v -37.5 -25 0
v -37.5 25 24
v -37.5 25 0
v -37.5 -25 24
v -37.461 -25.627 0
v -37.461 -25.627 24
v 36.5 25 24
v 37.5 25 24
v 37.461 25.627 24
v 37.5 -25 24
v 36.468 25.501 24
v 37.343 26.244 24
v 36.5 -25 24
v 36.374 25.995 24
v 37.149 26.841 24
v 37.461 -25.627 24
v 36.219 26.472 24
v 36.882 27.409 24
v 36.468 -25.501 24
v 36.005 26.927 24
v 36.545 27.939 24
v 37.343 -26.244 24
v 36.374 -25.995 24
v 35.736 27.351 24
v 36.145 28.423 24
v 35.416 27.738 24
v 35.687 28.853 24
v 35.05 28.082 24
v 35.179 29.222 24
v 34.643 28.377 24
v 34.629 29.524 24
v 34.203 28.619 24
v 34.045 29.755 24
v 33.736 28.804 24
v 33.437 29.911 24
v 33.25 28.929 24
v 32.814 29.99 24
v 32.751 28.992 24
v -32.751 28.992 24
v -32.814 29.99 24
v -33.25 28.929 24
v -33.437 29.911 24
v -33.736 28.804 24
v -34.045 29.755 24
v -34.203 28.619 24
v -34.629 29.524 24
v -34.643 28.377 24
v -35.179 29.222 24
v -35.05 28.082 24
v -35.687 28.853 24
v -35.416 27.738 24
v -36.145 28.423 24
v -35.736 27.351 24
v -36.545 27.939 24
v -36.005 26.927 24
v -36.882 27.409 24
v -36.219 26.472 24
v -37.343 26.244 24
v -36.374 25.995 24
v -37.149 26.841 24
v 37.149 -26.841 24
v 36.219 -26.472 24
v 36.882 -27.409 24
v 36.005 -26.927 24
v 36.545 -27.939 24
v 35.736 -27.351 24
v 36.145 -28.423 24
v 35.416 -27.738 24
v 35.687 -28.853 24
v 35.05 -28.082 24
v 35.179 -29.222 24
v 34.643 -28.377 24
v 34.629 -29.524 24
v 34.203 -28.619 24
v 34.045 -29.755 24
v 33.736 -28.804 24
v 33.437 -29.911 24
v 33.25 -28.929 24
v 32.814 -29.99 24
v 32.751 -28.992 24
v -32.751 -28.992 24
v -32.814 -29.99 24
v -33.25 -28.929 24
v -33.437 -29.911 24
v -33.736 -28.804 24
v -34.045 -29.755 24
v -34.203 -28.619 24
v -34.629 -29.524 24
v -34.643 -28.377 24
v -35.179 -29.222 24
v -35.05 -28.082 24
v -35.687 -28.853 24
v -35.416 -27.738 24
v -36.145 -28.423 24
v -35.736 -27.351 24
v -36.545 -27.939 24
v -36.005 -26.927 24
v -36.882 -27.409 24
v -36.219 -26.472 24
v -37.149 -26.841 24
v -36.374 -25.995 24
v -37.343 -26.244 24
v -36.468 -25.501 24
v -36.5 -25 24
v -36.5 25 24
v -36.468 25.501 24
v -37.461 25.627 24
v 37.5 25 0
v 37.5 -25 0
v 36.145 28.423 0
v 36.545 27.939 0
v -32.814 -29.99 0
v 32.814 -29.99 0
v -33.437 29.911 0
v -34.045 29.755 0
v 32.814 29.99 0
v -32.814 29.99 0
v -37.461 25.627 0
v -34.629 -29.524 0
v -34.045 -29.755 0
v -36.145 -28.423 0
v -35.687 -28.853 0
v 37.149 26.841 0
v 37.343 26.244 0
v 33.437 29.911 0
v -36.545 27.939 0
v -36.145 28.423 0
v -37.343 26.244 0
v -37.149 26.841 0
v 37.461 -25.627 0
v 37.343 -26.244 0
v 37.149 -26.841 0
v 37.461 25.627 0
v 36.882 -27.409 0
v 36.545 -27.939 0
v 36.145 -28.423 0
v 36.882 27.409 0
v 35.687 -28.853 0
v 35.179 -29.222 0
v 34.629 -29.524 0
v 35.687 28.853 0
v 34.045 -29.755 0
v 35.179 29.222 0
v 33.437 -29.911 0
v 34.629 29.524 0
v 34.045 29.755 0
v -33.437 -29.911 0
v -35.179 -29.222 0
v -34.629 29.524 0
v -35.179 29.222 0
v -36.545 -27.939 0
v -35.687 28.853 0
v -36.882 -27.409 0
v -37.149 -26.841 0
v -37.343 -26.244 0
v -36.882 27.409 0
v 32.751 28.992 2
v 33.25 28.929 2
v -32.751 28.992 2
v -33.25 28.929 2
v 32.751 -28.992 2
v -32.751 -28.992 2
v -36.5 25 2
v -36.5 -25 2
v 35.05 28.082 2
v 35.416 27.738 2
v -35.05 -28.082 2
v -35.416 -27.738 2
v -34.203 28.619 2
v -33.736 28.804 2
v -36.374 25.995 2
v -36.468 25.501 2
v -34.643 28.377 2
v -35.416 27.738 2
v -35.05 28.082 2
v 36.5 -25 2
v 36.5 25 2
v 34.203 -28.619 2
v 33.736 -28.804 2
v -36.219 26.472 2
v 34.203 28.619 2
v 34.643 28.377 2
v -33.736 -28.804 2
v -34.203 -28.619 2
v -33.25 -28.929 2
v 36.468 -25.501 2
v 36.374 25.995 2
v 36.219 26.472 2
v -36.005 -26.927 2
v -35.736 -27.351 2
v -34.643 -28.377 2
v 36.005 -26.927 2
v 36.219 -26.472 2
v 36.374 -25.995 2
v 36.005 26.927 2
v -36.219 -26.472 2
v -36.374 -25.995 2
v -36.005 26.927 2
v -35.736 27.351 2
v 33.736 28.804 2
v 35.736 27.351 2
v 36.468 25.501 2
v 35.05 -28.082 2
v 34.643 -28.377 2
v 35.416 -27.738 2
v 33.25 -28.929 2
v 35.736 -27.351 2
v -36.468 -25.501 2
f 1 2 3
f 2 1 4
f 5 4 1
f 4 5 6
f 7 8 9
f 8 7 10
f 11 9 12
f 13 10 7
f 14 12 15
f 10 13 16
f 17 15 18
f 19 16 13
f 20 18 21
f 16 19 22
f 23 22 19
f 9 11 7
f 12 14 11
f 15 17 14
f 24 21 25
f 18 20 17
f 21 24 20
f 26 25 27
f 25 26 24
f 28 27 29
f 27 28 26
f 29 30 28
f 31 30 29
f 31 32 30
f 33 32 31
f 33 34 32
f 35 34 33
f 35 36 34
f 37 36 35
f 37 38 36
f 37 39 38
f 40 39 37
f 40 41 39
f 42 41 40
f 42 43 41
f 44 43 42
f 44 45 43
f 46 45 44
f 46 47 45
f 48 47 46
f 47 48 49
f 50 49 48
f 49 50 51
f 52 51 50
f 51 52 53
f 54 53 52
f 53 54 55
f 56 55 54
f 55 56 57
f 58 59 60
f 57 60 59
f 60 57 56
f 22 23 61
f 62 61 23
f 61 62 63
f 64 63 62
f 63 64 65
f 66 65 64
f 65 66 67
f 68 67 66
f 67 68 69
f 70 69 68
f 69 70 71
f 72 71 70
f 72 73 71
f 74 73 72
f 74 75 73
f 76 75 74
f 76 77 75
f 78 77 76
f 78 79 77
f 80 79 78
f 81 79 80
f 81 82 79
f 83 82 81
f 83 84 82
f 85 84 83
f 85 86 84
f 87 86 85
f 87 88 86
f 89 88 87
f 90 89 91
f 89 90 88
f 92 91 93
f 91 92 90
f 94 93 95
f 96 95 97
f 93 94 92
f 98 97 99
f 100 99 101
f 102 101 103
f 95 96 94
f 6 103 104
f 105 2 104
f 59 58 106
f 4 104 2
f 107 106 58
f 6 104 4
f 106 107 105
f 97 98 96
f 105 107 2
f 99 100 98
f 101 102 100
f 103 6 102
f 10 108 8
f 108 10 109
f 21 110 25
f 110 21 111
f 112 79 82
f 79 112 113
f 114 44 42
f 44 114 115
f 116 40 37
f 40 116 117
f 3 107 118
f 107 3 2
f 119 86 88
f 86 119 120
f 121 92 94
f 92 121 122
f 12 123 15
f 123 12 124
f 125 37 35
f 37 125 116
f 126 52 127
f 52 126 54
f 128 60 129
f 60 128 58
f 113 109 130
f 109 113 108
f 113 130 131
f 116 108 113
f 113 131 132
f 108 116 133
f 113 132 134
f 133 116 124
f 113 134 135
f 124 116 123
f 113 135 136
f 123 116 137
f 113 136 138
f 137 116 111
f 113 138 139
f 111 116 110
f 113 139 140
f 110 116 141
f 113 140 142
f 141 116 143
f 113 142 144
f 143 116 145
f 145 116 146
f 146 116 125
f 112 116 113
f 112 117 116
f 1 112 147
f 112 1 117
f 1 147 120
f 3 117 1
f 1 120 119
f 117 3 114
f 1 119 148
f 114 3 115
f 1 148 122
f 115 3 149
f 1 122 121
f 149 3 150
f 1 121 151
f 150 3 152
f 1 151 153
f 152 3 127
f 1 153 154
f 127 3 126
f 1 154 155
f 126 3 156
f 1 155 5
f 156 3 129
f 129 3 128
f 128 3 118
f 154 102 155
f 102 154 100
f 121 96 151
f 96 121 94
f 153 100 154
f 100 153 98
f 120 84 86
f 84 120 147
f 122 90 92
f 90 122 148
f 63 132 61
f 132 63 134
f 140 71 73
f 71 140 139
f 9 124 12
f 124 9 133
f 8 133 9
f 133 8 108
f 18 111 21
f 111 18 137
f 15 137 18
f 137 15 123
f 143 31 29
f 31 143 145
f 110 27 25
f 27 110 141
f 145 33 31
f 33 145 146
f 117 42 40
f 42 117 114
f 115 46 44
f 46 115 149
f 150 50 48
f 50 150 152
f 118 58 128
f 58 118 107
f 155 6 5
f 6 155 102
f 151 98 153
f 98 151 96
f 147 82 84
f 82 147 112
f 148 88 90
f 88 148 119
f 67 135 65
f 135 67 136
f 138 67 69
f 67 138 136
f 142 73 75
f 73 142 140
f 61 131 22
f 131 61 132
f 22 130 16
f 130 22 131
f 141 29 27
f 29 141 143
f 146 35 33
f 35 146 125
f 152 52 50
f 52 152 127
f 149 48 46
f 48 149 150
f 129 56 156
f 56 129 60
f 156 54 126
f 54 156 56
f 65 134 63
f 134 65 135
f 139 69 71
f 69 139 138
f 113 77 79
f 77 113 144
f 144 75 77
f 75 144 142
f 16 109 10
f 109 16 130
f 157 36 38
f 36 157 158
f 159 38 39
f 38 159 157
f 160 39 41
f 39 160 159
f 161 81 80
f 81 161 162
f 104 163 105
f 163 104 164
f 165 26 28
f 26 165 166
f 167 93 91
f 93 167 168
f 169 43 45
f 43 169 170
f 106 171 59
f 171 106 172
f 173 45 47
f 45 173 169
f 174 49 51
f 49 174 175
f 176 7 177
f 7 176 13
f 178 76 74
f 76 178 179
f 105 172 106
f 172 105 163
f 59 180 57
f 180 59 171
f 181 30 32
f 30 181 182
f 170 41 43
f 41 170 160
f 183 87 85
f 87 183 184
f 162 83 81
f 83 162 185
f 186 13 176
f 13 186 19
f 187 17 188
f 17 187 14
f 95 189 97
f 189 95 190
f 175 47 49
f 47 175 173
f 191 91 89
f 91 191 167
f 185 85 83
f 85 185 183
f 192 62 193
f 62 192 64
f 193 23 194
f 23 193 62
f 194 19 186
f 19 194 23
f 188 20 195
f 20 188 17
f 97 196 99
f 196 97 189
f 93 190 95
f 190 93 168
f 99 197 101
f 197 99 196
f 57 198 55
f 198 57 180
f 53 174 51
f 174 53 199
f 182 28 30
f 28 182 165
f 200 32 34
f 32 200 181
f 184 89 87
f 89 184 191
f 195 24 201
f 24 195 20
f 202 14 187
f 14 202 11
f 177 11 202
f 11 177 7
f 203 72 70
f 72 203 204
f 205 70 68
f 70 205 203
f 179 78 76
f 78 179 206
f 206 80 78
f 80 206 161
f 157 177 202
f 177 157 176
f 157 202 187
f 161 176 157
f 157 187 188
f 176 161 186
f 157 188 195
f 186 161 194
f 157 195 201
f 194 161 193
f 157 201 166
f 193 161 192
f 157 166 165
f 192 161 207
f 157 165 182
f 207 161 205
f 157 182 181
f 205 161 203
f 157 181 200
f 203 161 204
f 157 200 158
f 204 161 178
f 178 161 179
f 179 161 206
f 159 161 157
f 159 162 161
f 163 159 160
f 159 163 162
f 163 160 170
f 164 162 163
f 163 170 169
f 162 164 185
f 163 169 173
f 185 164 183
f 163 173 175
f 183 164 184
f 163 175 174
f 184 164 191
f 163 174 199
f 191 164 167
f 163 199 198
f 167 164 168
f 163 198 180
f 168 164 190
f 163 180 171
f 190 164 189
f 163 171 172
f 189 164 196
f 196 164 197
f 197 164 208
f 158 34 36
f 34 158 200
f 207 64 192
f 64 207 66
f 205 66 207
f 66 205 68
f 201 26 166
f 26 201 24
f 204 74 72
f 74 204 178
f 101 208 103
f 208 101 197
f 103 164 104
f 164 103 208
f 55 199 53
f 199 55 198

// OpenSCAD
$fn = 50;


difference() {
	union() {
		hull() {
			translate(v = [-32.5000000000, 25.0000000000, 0]) {
				cylinder(h = 24, r = 5);
			}
			translate(v = [32.5000000000, 25.0000000000, 0]) {
				cylinder(h = 24, r = 5);
			}
			translate(v = [-32.5000000000, -25.0000000000, 0]) {
				cylinder(h = 24, r = 5);
			}
			translate(v = [32.5000000000, -25.0000000000, 0]) {
				cylinder(h = 24, r = 5);
			}
		}
	}
	union() {
		translate(v = [0, 0, 2]) {
			hull() {
				translate(v = [-32.5000000000, 25.0000000000, 0]) {
					cylinder(h = 22, r = 4);
				}
				translate(v = [32.5000000000, 25.0000000000, 0]) {
					cylinder(h = 22, r = 4);
				}
				translate(v = [-32.5000000000, -25.0000000000, 0]) {
					cylinder(h = 22, r = 4);
				}
				translate(v = [32.5000000000, -25.0000000000, 0]) {
					cylinder(h = 22, r = 4);
				}
			}
		}
	}
}
